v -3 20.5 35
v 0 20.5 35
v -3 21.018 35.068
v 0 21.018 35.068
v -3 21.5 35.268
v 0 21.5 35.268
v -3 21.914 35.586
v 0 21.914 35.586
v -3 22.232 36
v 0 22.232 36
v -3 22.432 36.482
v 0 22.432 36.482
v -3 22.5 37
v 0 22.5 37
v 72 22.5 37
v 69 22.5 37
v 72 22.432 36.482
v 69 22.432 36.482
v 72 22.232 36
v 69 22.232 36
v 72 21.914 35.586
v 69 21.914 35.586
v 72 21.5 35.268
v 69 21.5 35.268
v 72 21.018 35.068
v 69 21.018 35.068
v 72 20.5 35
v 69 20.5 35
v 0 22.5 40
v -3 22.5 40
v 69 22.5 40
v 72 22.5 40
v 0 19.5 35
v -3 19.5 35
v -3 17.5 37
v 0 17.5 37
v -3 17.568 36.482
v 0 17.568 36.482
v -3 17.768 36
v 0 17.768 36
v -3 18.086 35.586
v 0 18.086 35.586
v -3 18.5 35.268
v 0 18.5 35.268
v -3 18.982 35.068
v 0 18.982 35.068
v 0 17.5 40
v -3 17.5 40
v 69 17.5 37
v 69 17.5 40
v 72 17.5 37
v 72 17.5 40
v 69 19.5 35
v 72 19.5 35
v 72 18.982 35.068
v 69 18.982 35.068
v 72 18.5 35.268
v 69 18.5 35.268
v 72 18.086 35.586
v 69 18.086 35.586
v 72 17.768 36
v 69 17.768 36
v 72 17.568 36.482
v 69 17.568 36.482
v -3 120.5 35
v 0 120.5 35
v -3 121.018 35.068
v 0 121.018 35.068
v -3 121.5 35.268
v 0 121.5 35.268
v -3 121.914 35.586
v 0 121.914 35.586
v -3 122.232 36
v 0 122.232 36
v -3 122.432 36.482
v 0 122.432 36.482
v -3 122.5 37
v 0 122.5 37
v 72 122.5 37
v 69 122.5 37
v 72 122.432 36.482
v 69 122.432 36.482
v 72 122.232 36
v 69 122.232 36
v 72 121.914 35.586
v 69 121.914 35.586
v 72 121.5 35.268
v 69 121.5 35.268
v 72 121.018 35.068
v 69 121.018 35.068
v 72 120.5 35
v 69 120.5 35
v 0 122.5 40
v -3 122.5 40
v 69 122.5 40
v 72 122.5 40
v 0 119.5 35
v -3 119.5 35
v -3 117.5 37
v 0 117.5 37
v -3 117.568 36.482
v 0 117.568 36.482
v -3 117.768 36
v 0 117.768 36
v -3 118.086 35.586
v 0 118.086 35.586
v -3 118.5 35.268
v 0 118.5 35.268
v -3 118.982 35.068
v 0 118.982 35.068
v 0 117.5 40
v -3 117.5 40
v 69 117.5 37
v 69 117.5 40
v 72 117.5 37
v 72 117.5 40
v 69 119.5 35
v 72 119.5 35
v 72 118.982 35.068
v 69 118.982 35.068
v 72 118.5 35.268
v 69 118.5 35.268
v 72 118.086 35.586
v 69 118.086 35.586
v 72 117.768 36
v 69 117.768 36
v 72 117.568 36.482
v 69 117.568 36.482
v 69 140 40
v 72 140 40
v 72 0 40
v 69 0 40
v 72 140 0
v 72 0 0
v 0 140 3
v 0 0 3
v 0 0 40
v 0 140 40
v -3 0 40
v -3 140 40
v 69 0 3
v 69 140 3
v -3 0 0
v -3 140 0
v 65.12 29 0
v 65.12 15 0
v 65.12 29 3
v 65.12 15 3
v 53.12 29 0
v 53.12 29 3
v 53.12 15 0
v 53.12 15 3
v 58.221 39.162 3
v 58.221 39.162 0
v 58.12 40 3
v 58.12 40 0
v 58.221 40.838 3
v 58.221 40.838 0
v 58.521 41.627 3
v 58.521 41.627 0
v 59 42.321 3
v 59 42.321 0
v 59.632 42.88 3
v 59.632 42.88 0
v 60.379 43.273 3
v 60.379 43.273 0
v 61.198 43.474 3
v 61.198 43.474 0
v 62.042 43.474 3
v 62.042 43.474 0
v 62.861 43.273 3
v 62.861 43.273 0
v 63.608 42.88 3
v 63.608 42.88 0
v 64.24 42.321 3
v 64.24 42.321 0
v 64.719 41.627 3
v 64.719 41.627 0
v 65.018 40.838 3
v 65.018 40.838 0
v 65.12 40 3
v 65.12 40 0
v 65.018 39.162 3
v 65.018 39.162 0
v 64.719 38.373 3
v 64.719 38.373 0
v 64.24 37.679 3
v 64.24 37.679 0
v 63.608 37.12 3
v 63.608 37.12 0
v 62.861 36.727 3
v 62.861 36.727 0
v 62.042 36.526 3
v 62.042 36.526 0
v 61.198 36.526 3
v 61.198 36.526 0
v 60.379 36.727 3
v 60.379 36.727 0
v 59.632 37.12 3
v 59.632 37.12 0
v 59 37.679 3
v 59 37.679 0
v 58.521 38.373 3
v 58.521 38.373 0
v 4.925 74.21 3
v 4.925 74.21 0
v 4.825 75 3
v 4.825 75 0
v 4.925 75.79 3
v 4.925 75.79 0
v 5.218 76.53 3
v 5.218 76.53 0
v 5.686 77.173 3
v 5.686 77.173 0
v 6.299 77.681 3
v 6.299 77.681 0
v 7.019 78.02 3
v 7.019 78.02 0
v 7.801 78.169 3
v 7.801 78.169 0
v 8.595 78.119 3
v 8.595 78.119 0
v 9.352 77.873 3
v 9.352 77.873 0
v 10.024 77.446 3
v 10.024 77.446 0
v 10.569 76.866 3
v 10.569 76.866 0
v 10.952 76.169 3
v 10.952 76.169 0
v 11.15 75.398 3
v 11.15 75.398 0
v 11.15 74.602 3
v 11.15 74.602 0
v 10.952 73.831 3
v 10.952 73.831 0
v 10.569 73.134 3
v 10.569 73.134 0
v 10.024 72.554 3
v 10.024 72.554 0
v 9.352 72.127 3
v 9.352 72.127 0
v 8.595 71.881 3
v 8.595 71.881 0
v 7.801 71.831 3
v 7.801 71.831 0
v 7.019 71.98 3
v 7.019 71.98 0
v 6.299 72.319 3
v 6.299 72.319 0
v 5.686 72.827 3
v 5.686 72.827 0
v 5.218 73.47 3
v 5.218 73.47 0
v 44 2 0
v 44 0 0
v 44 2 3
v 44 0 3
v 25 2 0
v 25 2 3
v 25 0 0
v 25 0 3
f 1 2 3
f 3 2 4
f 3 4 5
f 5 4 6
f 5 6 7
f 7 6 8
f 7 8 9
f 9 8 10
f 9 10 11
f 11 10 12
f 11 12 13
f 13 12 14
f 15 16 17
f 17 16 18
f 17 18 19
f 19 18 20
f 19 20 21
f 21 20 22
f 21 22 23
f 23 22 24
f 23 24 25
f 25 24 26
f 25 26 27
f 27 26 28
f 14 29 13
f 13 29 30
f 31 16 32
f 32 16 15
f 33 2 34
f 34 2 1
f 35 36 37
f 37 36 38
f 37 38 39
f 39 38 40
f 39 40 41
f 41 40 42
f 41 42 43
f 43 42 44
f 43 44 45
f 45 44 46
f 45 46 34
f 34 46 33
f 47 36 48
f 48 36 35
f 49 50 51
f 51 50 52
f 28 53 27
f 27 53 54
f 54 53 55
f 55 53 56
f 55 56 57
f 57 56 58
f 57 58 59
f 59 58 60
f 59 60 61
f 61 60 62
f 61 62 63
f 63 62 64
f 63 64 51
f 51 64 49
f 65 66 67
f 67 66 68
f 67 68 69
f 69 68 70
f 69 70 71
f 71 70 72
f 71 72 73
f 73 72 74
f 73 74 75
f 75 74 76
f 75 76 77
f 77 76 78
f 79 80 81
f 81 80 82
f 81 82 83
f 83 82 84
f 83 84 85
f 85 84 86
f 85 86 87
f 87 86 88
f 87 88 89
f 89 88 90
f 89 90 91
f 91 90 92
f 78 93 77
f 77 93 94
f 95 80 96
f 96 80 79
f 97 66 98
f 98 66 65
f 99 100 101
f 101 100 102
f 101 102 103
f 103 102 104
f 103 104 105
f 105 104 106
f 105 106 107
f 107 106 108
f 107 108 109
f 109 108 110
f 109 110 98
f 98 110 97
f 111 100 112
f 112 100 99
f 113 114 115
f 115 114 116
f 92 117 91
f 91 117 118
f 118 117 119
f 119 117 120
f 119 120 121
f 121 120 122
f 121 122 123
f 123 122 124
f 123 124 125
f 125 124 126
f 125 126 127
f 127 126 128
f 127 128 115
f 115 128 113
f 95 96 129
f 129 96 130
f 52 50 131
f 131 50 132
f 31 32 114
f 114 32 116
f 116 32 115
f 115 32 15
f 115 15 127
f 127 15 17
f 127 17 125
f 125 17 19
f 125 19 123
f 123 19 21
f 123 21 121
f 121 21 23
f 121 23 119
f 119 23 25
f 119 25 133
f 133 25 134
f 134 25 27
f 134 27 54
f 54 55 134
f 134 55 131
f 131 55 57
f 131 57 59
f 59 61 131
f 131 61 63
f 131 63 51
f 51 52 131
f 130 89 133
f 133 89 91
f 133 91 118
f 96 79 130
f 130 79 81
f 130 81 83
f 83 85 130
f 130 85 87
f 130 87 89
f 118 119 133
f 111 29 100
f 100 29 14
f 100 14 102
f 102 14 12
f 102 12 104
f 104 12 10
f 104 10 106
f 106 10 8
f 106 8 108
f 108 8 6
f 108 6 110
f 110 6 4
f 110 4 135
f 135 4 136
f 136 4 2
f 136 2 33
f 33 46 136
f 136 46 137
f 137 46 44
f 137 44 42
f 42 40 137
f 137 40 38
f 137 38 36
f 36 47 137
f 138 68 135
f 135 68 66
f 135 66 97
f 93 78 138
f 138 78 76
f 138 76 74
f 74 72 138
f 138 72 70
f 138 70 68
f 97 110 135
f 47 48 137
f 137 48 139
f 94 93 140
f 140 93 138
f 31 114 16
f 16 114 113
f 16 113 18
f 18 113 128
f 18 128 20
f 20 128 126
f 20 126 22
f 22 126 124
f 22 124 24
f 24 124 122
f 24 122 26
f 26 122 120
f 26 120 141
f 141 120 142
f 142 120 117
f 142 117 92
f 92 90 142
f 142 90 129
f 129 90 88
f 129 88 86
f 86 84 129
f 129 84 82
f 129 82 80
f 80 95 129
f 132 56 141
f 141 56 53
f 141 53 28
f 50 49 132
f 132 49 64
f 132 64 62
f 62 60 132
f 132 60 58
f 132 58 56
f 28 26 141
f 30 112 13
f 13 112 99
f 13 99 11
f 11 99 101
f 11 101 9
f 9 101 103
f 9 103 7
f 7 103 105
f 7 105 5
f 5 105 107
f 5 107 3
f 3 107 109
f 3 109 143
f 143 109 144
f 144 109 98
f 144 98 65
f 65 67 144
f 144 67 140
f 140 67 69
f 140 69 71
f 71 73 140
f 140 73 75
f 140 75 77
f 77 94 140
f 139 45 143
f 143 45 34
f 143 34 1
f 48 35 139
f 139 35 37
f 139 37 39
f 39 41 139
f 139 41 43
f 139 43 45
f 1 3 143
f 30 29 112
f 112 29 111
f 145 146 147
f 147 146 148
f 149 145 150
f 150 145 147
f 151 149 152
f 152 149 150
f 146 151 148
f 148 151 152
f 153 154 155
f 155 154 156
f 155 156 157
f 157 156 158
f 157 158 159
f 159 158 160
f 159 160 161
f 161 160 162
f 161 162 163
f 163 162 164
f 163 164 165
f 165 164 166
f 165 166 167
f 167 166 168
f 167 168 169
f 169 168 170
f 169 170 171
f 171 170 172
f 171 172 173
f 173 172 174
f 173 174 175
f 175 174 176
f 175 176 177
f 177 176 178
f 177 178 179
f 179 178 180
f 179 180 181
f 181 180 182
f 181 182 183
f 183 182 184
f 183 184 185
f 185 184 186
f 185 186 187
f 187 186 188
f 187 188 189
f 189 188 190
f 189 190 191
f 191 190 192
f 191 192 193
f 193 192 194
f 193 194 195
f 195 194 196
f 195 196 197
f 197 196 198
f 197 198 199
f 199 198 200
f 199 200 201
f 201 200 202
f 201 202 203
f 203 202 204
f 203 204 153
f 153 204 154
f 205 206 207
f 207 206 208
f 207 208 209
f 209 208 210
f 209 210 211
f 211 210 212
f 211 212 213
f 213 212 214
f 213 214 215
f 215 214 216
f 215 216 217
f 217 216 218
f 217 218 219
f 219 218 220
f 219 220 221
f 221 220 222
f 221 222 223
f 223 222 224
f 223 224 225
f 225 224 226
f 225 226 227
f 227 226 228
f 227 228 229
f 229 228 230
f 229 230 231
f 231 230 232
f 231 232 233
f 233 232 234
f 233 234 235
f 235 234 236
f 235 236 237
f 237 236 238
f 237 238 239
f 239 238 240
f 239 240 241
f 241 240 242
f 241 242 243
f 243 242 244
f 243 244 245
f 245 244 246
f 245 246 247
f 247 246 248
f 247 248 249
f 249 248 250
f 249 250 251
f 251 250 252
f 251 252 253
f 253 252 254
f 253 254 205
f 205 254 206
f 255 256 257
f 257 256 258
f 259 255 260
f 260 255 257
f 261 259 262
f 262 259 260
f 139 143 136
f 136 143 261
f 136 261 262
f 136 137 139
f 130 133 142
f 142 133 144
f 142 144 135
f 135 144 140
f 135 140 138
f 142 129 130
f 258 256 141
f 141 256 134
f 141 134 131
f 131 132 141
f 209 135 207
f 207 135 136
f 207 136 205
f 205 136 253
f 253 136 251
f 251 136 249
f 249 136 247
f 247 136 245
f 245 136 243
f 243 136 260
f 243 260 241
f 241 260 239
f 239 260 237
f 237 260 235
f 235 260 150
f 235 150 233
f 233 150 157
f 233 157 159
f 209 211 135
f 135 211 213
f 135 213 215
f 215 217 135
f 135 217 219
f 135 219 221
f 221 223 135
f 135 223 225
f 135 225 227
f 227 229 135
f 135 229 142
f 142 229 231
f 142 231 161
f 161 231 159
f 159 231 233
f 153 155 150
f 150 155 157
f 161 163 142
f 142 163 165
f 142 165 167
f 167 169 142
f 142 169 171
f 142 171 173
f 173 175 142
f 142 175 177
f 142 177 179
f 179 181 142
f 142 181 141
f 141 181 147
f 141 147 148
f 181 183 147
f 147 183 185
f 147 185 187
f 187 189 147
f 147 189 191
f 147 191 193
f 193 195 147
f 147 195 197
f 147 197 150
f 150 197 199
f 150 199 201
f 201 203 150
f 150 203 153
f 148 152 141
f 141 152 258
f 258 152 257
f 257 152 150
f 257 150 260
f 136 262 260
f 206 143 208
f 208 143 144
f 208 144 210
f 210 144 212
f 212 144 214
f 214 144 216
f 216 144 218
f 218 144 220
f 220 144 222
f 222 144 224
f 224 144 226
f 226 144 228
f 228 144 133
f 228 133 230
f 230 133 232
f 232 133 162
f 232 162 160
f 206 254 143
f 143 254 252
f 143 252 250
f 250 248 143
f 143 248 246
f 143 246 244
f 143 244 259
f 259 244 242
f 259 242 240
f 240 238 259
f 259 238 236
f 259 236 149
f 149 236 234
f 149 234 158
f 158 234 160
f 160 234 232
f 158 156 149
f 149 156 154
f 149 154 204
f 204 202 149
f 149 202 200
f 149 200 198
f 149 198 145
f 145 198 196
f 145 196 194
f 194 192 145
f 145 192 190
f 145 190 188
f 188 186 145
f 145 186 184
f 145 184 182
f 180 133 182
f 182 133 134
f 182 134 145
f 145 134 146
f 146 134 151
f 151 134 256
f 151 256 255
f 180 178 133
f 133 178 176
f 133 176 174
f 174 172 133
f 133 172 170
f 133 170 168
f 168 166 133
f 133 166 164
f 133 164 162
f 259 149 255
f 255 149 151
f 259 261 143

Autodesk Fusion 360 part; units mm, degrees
sketch "Sketch1" plane through (0, 0, 0) normal (0, 0, 1) x (1, 0, 0)
  line L0 (0, 0) -> (69, 0)
  line L1 (69, 0) -> (69, 140)
  line L2 (69, 140) -> (0, 140)
  line L3 (0, 140) -> (0, 0)
  line L4 (0, 140) -> (-3, 140)
  line L5 (-3, 140) -> (-3, 0)
  line L6 (-3, 0) -> (0, 0)
  line L7 (0, 0) -> (0, 140)
  line L8 (69, 140) -> (72, 140)
  line L9 (72, 140) -> (72, 0)
  line L10 (72, 0) -> (69, 0)
  line L11 (69, 0) -> (69, 140)
  line L12 (34.5, 140) -> (34.5, 0) construction
  line L13 (25, 0) -> (44, 0)
  line L14 (44, 0) -> (44, 2)
  line L15 (44, 2) -> (25, 2)
  line L16 (25, 2) -> (25, 0)
  line L17 (34.5, 2) -> (34.5, 0) construction
  line L18 (53.1198, 29) -> (65.1198, 29)
  line L19 (65.1198, 29) -> (65.1198, 15)
  line L20 (65.1198, 15) -> (53.1198, 15)
  line L21 (53.1198, 15) -> (53.1198, 29)
  circle A0 centre (8, 75) radius 3.175
  circle A1 centre (61.6198, 40) radius 3.5
  line L22 (65.1198, 29) -> (65.1198, 49) construction
  dimension "d1" = 140
  dimension "d3" = 3
  dimension "d4" = 3
  dimension "d30" = 75
  dimension "d31" = 2
  dimension "d32" = 19
  dimension "d33" = 14
  dimension "d34" = 12
  dimension "d35" = 6.35
  dimension "d36" = 65
  dimension "d37" = 7
  dimension "d38" = 40
  dimension "d39" = 15
extrude "Extrude1" add sketch "Sketch1" along normal blind 3 contours L0 L1 L2 L3 L7 L11 L14 L15 L16
extrude "Extrude2" add sketch "Sketch1" along normal blind 40 contours L3 L4 L5 L6 L7 | L1 L8 L9 L10 L11
sketch "Sketch3" plane through (72, 0, 0) normal (1, 0, 0) x (0, 1, 0)
  line L0 (0, 0) -> (140, 0)
  line L1 (140, 0) -> (140, 40)
  line L2 (140, 40) -> (0, 40)
  line L3 (0, 40) -> (0, 0)
  line L4 (140, 0) -> (0, 0)
  line L5 (70, 40) -> (70, 0) construction
  line L6 (17.5, 40) -> (22.5, 40)
  line L7 (22.5, 40) -> (22.5, 37)
  line L8 (20.5, 35) -> (19.5, 35)
  line L9 (17.5, 37) -> (17.5, 40)
  arc A0 (17.5, 37) -> (19.5, 35) centre (19.5, 37) ccw
  arc A1 (20.5, 35) -> (22.5, 37) centre (20.5, 37) ccw
  line L10 (20, 40) -> (20, 35) construction
  line L11 (117.5, 40) -> (122.5, 40)
  line L12 (122.5, 40) -> (122.5, 37)
  line L13 (120.5, 35) -> (119.5, 35)
  line L14 (117.5, 37) -> (117.5, 40)
  arc A2 (117.5, 37) -> (119.5, 35) centre (119.5, 37) ccw
  arc A3 (120.5, 35) -> (122.5, 37) centre (120.5, 37) ccw
  line L15 (120, 35) -> (120, 40) construction
  point P0 (17.5, 35)
  point P1 (117.5, 35)
  dimension "d18" = 5
  dimension "d19" = 5
  dimension "d20" = 2
  dimension "d21" = 2
  dimension "d23" = 5
  dimension "d24" = 2
  dimension "d25" = 2
  dimension "d26" = 5
  dimension "d27" = 100
extrude "Extrude3" cut sketch "Sketch3" along normal mid plane 200 contours L2 L6 L7 L8 L9 A0 A1 | L2 L11 L12 L13 L14 A2 A3
